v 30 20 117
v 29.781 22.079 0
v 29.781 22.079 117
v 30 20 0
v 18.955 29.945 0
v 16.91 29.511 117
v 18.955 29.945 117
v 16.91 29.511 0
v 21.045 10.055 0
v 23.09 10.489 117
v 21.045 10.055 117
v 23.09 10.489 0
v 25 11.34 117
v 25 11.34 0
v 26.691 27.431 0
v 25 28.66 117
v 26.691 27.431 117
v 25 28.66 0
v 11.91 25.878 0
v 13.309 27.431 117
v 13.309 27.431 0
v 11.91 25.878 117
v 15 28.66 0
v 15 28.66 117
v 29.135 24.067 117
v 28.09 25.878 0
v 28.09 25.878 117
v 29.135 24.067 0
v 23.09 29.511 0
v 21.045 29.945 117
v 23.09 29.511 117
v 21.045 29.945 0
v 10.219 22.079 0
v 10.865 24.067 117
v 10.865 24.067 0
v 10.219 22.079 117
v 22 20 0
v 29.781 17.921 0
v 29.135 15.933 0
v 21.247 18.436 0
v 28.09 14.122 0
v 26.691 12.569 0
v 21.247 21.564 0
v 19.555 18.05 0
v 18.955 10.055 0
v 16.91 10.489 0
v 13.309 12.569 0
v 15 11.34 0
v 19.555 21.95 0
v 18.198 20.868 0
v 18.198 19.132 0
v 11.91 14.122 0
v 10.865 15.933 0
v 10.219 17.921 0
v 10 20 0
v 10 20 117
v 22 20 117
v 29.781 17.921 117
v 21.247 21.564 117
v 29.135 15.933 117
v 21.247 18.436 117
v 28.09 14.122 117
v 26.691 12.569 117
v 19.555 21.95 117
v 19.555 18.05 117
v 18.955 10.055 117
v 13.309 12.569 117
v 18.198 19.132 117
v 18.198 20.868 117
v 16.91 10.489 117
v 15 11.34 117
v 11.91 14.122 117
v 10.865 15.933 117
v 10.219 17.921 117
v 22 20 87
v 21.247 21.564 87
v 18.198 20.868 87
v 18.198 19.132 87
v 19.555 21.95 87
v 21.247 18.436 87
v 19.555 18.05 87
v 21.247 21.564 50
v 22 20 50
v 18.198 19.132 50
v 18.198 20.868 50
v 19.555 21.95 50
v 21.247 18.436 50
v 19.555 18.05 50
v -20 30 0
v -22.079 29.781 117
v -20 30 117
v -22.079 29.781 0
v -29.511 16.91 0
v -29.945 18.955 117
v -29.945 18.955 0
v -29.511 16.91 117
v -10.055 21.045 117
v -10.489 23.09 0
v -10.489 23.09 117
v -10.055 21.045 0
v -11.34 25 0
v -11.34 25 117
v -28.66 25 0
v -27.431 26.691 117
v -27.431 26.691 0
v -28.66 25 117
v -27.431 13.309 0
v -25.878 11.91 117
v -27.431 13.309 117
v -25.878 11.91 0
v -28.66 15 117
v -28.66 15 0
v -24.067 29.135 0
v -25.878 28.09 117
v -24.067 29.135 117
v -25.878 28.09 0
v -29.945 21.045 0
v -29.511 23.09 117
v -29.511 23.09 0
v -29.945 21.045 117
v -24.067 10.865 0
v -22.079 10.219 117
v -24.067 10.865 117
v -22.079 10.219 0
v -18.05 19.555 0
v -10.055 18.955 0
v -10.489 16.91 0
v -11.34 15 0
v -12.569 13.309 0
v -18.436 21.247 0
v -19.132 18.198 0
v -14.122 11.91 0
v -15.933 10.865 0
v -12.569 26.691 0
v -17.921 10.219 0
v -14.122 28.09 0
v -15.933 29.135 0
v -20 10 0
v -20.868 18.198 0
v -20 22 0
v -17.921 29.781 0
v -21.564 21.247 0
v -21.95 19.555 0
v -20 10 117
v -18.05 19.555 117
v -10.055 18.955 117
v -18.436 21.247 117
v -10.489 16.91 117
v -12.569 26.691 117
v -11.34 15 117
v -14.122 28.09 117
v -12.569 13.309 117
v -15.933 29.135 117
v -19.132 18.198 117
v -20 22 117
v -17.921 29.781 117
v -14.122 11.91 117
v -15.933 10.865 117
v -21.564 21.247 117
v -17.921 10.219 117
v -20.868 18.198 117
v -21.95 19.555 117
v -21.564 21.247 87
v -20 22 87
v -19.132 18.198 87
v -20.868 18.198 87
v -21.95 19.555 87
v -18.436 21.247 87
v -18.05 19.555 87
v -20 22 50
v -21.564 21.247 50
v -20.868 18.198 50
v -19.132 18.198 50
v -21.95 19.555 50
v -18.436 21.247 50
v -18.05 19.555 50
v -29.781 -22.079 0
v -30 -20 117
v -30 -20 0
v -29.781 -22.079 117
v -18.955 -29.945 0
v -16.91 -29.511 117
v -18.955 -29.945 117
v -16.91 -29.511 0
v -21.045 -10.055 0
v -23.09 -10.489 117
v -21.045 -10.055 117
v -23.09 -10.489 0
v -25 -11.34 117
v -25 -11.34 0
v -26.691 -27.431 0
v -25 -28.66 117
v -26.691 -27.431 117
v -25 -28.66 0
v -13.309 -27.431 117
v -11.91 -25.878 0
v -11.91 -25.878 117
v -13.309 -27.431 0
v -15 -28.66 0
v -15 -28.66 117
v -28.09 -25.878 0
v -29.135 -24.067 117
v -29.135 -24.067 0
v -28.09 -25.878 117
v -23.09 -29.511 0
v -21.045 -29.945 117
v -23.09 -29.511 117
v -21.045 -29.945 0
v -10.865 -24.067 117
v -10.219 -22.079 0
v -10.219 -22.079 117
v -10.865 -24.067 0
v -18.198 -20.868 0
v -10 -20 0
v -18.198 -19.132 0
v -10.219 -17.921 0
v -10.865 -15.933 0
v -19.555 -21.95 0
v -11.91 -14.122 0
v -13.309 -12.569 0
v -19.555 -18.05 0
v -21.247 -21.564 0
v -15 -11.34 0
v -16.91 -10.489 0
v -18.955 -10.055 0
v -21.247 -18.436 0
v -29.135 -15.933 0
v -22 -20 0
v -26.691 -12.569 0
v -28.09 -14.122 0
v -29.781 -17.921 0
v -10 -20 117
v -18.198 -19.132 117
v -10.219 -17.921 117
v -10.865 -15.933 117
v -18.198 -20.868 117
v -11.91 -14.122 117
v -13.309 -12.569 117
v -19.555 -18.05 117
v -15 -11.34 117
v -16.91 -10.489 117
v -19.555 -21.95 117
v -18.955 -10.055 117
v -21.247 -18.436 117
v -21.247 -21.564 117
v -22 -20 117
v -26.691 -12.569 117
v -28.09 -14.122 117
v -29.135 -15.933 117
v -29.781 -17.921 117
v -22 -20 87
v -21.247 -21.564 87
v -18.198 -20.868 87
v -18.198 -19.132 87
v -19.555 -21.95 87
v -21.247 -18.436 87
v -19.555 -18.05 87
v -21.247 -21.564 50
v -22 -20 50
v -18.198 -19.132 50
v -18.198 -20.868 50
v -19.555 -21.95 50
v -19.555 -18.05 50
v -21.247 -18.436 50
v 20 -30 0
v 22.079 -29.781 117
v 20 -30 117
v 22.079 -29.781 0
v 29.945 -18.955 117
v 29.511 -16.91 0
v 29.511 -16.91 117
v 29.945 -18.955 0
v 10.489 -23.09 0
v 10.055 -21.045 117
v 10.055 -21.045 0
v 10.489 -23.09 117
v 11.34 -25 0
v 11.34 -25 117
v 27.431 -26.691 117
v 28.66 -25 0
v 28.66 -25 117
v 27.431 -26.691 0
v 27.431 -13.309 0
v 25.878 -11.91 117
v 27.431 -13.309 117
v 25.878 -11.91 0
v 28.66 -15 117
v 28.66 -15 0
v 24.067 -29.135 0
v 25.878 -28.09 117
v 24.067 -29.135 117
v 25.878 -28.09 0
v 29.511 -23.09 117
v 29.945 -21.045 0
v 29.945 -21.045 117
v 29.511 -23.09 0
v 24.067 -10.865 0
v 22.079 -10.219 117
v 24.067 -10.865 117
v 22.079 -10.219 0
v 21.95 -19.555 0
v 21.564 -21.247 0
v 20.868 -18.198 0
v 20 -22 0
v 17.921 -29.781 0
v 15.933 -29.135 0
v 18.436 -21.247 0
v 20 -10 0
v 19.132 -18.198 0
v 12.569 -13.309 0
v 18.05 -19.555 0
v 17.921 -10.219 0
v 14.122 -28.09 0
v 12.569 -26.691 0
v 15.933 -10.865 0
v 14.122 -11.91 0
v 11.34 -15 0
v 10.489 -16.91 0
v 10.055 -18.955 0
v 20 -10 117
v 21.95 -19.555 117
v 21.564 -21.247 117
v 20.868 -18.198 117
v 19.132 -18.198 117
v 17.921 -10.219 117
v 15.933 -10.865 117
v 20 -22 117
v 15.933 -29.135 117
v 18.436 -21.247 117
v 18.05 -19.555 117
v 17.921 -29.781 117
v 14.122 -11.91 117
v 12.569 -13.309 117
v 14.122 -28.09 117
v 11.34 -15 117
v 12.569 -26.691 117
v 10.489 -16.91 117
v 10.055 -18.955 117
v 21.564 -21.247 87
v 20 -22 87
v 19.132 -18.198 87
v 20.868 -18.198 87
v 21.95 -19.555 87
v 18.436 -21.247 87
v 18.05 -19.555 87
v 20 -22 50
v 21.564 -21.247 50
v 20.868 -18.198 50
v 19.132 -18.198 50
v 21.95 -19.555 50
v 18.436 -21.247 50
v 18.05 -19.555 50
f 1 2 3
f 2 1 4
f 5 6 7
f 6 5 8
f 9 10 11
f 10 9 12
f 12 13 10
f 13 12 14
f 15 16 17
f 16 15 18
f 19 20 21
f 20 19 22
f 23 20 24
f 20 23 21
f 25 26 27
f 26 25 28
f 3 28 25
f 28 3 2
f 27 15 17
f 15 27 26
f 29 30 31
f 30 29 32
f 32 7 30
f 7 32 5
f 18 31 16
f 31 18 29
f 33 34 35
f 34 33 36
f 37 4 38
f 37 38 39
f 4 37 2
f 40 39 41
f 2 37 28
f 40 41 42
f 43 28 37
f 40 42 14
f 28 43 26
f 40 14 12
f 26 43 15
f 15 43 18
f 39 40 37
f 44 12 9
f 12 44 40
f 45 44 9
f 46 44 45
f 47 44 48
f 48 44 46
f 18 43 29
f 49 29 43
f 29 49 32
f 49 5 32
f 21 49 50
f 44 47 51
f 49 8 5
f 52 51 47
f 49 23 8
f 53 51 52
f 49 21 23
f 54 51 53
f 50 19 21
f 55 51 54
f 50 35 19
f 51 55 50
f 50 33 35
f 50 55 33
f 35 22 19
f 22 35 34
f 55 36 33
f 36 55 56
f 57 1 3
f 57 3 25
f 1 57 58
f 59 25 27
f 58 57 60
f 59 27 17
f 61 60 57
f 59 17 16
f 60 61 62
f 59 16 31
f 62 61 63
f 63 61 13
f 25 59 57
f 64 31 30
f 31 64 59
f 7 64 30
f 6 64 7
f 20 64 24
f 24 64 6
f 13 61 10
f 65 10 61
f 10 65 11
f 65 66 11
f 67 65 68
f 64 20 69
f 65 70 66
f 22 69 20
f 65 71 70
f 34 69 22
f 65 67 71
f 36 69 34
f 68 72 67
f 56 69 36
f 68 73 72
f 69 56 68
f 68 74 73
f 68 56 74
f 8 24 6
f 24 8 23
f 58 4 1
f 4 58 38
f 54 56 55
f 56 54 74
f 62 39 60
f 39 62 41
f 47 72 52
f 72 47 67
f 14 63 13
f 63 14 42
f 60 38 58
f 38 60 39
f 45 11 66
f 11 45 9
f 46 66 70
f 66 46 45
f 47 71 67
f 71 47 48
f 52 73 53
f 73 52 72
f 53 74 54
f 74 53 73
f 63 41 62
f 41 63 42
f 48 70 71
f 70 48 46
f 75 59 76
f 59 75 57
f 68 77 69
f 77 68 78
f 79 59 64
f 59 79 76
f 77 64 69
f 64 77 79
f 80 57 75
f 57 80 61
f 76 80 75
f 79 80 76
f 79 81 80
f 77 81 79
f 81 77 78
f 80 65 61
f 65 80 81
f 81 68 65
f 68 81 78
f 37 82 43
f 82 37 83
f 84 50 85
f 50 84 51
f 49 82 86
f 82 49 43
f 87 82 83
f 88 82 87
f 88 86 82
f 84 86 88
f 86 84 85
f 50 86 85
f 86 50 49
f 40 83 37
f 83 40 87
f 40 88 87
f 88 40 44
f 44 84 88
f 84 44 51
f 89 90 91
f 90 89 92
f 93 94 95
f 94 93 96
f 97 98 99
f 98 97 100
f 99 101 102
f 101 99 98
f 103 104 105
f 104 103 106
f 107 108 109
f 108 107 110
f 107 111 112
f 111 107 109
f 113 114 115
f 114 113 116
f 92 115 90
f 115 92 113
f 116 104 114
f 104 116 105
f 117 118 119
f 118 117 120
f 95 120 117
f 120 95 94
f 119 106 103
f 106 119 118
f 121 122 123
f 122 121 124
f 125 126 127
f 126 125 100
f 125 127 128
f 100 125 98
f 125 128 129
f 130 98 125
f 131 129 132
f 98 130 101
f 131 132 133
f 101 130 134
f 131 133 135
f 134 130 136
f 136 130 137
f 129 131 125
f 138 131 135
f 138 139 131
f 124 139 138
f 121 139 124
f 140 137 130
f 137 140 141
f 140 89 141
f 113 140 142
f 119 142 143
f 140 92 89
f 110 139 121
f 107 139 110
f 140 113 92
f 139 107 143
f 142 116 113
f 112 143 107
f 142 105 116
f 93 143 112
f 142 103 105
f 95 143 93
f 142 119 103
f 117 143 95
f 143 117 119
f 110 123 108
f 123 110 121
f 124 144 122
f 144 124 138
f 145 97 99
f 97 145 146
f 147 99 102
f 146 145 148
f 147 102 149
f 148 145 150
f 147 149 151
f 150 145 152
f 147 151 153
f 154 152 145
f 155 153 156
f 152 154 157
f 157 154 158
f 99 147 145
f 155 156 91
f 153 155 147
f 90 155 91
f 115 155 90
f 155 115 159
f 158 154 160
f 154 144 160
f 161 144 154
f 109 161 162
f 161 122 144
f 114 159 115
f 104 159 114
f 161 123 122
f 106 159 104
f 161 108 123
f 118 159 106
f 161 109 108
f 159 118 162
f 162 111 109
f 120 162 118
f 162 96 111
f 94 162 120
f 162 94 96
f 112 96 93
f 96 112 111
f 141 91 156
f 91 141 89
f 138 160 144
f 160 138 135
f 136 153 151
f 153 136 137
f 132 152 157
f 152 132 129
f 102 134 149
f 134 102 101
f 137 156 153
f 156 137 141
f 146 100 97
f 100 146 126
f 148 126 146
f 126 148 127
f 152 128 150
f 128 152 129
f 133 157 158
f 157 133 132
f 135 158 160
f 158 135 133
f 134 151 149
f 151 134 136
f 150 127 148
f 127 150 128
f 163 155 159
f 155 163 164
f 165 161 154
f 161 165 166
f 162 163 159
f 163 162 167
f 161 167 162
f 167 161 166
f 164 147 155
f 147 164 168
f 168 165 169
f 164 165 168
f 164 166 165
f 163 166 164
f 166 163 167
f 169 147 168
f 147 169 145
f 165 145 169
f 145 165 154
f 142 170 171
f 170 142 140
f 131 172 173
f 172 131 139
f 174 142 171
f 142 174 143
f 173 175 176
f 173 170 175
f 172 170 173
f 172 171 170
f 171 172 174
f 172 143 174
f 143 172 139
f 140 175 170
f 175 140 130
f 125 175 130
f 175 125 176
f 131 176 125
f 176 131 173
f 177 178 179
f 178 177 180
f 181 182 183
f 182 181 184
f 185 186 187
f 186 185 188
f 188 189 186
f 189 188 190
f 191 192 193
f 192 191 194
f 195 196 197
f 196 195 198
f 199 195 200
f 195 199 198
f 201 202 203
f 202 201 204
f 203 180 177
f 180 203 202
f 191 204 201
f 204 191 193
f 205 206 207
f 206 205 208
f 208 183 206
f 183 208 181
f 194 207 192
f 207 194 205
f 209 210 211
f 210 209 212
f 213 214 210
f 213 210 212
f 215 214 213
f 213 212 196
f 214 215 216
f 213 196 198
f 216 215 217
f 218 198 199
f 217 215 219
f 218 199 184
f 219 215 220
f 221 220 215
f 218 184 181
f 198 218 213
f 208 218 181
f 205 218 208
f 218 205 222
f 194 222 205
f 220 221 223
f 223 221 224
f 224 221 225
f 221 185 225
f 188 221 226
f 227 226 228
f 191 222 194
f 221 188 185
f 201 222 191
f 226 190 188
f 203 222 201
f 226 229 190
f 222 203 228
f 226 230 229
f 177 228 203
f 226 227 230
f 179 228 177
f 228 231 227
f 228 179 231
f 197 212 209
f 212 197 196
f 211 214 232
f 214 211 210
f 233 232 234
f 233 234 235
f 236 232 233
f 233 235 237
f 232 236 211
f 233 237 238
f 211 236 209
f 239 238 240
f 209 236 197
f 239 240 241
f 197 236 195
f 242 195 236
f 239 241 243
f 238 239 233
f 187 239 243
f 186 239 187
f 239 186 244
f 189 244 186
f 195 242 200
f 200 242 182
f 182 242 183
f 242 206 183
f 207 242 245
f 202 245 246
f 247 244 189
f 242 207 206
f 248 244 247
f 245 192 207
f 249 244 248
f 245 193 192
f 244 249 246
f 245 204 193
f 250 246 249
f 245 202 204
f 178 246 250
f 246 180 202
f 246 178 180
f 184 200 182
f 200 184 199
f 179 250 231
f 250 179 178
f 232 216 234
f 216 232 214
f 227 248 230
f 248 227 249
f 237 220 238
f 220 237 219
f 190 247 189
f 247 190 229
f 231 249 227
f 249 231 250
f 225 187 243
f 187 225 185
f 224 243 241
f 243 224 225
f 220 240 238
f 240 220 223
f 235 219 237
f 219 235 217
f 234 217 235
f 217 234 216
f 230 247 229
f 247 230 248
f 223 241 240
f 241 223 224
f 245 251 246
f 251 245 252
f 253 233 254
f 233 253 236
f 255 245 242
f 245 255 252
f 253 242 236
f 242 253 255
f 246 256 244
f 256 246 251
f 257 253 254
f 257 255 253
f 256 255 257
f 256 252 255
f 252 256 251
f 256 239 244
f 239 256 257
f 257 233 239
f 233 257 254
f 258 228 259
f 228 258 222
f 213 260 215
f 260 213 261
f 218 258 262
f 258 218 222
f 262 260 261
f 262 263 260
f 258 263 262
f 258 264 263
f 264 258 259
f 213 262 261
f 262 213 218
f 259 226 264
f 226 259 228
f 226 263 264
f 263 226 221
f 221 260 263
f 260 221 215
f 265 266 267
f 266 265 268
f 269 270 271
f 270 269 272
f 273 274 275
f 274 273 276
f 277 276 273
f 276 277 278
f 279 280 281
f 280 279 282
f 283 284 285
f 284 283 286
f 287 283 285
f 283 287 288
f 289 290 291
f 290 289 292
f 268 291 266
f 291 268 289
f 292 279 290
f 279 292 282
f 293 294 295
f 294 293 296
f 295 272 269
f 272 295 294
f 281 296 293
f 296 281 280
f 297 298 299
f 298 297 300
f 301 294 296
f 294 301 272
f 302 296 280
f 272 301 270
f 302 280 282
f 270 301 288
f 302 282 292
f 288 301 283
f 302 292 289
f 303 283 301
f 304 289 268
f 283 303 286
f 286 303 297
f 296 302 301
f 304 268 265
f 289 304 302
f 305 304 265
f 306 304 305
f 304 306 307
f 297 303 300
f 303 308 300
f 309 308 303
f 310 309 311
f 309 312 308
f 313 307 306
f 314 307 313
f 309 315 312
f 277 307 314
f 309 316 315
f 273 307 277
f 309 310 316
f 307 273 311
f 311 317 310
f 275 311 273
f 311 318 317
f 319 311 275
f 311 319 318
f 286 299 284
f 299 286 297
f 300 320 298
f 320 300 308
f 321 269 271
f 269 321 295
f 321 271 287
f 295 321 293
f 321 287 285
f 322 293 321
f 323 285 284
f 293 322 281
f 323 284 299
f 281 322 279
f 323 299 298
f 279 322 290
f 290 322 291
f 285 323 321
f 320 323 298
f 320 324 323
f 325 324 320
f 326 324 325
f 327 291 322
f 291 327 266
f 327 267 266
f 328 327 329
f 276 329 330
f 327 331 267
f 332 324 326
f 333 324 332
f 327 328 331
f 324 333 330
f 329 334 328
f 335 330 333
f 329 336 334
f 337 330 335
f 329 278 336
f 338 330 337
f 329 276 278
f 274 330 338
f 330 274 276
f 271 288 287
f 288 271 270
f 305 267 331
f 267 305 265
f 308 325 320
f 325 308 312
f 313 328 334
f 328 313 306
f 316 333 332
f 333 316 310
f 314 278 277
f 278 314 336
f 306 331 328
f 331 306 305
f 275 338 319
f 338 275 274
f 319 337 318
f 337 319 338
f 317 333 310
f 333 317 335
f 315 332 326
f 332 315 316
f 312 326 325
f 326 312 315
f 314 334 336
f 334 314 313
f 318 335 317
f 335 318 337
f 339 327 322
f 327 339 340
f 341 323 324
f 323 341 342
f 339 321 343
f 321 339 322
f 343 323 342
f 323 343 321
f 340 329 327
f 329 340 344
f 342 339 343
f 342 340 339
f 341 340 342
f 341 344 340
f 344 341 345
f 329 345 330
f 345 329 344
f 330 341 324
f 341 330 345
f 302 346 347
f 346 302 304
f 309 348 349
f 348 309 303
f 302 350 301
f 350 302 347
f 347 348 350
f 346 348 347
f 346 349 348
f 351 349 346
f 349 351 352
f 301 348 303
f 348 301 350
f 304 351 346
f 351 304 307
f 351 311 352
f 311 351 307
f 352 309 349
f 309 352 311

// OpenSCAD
// radius of the circle of balls (average between external and internal radiuses)


//ball bearing stand
stand();
rotate([0,0,90])
stand();
rotate([0,0,180])
stand();
rotate([0,0,270])
stand();

module stand() {
difference()
{
    stand_width = 20;
    stand_height = 117;
    base_width = 40;
    base_height = 3;
    union() {
            
       
	/*
          translate([-thickness,+7*support_length-thickness,-support_height])
          cube([2*support_length,2*support_length,support_height+support_height+2*thickness]);
    }
        */
        //stand
      
    //cube([stand_width,stand_width,stand_height]);
        translate([base_width/2, base_width/2,0]) 
        cylinder(stand_height,d = stand_width);
    
        //base
        
    //cube([base_width, base_width, base_height]);
        
        
        }
        
        // hold for middle screw
        translate([base_width/2,base_width/2,stand_height-30])
       cylinder(50,d=4);
        
        // hold for middle bottom screw
        translate([base_width/2,base_width/2,0])
       cylinder(50,d=4);
    //hold for screw
        /*
        translate([7*base_width/8,7*base_width/8,-base_height])
       cylinder(10,d=4);
        translate([1*base_width/8,7*base_width/8,-base_height])
       cylinder(10,d=4);
       translate([1*base_width/8,1*base_width/8,-base_height])
       cylinder(10,d=4);
       translate([7*base_width/8,1*base_width/8,-base_height])
       cylinder(10,d=4);*/
    
}
}
